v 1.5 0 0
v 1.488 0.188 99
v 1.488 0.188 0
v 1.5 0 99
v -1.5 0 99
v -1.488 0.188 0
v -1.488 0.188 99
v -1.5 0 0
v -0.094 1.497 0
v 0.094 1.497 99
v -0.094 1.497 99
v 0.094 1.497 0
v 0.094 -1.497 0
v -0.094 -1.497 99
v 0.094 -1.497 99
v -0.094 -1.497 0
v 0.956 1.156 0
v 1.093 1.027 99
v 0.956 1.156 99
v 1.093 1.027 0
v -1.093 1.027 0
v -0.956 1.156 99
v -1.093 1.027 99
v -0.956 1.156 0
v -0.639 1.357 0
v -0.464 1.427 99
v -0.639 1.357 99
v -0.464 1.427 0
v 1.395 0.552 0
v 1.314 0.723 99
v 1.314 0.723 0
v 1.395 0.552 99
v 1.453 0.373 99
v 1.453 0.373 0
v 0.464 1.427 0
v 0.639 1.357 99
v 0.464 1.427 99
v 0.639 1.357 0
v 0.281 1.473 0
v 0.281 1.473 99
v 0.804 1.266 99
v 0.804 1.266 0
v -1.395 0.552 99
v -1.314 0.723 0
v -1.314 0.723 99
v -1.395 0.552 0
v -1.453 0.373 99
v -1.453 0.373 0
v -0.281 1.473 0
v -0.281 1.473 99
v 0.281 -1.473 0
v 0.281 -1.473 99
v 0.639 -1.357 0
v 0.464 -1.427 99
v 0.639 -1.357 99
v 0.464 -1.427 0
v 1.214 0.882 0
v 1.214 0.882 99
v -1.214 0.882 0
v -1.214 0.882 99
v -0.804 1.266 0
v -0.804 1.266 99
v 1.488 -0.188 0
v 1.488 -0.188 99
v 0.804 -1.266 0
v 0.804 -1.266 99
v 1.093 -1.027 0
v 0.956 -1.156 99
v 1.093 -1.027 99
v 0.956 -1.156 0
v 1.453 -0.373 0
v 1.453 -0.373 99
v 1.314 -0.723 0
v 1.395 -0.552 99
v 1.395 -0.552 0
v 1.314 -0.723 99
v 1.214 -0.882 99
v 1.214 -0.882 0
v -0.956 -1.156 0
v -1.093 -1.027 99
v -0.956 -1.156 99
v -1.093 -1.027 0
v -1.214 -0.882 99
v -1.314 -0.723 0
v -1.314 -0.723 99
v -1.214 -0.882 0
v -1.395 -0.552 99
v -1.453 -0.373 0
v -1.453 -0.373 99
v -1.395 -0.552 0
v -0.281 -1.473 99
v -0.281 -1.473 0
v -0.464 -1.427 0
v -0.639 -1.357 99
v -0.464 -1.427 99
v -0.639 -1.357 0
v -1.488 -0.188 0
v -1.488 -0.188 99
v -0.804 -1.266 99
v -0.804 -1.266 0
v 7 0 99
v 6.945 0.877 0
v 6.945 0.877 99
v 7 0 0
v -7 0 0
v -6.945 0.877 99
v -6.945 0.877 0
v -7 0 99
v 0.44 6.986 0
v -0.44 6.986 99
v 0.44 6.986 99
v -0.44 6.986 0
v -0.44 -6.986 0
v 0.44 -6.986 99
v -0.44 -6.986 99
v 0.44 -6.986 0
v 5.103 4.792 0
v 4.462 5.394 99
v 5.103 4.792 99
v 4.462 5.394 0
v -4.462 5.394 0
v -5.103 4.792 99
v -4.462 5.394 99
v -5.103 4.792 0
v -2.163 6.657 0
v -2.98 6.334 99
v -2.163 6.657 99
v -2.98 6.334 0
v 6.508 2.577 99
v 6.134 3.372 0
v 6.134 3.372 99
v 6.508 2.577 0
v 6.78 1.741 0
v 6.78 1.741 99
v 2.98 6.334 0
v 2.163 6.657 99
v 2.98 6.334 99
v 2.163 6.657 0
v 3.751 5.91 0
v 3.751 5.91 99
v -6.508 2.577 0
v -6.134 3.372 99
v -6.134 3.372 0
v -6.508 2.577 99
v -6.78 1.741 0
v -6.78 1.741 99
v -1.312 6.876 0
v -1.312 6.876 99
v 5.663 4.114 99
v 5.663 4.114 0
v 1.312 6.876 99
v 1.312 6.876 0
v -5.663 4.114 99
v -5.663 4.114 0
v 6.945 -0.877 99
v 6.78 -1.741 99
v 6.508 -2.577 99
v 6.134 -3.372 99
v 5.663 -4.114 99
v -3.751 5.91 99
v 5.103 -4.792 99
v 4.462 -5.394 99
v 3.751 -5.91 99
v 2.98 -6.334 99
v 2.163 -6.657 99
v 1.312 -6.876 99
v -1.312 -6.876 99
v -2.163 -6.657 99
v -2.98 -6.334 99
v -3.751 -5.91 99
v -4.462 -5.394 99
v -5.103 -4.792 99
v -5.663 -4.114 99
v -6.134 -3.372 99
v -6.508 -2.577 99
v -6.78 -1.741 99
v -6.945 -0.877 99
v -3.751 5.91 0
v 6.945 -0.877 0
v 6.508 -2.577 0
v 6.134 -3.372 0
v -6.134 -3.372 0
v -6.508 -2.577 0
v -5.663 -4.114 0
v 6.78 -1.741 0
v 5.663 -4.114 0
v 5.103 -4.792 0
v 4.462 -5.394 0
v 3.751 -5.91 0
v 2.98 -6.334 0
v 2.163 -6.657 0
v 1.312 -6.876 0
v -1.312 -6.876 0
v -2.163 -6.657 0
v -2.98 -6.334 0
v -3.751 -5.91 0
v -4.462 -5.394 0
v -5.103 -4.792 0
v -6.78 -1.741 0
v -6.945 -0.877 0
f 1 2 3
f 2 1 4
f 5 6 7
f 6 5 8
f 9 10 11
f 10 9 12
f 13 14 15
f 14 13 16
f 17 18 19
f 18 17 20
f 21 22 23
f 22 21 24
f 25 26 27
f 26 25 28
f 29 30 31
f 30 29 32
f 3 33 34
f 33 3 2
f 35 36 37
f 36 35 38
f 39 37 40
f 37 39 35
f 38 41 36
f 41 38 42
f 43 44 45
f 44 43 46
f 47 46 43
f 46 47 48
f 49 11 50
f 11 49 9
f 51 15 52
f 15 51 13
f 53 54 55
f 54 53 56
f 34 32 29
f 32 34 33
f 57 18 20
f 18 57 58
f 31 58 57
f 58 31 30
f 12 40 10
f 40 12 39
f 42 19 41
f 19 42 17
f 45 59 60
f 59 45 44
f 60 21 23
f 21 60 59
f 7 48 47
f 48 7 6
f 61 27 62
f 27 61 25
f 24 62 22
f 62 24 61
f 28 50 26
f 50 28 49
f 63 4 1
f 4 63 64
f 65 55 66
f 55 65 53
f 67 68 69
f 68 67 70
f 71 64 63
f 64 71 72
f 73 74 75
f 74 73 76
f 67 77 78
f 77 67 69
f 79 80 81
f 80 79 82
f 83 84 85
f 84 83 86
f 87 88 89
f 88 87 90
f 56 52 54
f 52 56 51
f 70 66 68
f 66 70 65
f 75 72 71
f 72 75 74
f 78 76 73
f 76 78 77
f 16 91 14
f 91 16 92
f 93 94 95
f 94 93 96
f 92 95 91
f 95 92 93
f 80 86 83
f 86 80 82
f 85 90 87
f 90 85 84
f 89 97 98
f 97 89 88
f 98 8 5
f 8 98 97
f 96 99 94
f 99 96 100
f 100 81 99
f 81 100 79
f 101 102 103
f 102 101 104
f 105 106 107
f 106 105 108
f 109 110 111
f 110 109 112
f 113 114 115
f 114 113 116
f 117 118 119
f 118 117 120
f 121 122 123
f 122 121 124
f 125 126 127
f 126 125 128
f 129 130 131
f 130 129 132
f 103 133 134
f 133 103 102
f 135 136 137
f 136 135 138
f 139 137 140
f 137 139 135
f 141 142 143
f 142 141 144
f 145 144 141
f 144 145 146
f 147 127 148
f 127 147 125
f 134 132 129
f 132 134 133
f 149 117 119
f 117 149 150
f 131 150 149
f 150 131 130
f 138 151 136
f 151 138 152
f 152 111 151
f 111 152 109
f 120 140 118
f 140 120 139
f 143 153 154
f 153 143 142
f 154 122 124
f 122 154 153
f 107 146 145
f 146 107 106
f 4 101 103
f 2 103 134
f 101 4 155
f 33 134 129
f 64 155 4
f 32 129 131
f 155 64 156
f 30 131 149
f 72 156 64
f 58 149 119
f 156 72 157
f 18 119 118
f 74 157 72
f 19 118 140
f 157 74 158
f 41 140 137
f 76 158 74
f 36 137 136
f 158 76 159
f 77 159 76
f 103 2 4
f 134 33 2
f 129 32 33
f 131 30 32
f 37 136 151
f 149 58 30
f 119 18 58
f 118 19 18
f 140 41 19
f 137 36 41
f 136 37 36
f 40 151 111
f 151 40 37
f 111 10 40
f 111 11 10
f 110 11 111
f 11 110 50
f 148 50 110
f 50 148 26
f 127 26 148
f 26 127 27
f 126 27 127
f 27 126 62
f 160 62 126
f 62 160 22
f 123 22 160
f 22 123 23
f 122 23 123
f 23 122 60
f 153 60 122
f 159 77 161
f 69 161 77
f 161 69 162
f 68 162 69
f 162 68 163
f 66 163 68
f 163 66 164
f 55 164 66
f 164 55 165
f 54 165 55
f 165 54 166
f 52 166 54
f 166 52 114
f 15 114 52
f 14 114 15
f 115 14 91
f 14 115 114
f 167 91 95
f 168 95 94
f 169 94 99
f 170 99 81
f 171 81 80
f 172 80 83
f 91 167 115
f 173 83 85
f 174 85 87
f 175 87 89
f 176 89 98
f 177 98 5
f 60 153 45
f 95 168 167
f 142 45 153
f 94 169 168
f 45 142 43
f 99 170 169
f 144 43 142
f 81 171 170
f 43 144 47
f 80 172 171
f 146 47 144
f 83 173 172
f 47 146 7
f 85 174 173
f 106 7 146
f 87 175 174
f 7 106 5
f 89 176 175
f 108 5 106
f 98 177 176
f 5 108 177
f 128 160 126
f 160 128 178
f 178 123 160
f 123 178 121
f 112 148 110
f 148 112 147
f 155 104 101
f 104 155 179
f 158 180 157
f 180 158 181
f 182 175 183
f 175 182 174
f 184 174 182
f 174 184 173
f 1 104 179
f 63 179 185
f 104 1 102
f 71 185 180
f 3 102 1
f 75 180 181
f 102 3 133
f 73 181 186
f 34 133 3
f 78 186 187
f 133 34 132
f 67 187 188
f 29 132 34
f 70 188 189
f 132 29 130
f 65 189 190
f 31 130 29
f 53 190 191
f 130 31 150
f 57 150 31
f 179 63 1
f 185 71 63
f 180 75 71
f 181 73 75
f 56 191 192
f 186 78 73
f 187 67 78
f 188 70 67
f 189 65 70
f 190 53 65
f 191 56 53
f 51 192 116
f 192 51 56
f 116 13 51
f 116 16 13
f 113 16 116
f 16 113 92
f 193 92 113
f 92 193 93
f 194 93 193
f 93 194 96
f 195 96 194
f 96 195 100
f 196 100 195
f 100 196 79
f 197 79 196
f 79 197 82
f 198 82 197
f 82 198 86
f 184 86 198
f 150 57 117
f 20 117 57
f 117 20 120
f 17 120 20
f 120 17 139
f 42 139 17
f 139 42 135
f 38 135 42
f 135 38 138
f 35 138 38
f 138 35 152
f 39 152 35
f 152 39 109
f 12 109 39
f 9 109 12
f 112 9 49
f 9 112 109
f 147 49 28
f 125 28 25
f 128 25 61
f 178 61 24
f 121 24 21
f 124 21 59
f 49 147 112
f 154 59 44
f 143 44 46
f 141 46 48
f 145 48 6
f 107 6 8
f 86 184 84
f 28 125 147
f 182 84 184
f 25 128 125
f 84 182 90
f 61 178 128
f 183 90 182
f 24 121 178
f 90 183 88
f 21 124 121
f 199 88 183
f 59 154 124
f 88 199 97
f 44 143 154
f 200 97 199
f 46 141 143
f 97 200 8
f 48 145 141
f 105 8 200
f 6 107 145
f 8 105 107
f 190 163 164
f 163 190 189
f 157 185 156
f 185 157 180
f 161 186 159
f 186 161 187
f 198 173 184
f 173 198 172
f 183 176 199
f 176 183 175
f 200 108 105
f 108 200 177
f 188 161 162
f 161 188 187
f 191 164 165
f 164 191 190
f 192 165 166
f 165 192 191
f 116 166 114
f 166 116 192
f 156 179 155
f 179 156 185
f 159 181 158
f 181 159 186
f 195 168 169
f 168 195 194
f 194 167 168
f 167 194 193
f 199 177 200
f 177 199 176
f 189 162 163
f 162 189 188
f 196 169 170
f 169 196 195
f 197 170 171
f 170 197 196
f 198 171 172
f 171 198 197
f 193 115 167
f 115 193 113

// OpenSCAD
$fn = 50;


difference() {
	union() {
		cylinder(h = 99, r = 7.0000000000);
	}
	union() {
		translate(v = [0, 0, -100]) {
			cylinder(h = 200, r = 1.5000000000);
		}
		translate(v = [0, 0, -100]) {
			cylinder(h = 200, r = 1.5000000000);
		}
	}
}
